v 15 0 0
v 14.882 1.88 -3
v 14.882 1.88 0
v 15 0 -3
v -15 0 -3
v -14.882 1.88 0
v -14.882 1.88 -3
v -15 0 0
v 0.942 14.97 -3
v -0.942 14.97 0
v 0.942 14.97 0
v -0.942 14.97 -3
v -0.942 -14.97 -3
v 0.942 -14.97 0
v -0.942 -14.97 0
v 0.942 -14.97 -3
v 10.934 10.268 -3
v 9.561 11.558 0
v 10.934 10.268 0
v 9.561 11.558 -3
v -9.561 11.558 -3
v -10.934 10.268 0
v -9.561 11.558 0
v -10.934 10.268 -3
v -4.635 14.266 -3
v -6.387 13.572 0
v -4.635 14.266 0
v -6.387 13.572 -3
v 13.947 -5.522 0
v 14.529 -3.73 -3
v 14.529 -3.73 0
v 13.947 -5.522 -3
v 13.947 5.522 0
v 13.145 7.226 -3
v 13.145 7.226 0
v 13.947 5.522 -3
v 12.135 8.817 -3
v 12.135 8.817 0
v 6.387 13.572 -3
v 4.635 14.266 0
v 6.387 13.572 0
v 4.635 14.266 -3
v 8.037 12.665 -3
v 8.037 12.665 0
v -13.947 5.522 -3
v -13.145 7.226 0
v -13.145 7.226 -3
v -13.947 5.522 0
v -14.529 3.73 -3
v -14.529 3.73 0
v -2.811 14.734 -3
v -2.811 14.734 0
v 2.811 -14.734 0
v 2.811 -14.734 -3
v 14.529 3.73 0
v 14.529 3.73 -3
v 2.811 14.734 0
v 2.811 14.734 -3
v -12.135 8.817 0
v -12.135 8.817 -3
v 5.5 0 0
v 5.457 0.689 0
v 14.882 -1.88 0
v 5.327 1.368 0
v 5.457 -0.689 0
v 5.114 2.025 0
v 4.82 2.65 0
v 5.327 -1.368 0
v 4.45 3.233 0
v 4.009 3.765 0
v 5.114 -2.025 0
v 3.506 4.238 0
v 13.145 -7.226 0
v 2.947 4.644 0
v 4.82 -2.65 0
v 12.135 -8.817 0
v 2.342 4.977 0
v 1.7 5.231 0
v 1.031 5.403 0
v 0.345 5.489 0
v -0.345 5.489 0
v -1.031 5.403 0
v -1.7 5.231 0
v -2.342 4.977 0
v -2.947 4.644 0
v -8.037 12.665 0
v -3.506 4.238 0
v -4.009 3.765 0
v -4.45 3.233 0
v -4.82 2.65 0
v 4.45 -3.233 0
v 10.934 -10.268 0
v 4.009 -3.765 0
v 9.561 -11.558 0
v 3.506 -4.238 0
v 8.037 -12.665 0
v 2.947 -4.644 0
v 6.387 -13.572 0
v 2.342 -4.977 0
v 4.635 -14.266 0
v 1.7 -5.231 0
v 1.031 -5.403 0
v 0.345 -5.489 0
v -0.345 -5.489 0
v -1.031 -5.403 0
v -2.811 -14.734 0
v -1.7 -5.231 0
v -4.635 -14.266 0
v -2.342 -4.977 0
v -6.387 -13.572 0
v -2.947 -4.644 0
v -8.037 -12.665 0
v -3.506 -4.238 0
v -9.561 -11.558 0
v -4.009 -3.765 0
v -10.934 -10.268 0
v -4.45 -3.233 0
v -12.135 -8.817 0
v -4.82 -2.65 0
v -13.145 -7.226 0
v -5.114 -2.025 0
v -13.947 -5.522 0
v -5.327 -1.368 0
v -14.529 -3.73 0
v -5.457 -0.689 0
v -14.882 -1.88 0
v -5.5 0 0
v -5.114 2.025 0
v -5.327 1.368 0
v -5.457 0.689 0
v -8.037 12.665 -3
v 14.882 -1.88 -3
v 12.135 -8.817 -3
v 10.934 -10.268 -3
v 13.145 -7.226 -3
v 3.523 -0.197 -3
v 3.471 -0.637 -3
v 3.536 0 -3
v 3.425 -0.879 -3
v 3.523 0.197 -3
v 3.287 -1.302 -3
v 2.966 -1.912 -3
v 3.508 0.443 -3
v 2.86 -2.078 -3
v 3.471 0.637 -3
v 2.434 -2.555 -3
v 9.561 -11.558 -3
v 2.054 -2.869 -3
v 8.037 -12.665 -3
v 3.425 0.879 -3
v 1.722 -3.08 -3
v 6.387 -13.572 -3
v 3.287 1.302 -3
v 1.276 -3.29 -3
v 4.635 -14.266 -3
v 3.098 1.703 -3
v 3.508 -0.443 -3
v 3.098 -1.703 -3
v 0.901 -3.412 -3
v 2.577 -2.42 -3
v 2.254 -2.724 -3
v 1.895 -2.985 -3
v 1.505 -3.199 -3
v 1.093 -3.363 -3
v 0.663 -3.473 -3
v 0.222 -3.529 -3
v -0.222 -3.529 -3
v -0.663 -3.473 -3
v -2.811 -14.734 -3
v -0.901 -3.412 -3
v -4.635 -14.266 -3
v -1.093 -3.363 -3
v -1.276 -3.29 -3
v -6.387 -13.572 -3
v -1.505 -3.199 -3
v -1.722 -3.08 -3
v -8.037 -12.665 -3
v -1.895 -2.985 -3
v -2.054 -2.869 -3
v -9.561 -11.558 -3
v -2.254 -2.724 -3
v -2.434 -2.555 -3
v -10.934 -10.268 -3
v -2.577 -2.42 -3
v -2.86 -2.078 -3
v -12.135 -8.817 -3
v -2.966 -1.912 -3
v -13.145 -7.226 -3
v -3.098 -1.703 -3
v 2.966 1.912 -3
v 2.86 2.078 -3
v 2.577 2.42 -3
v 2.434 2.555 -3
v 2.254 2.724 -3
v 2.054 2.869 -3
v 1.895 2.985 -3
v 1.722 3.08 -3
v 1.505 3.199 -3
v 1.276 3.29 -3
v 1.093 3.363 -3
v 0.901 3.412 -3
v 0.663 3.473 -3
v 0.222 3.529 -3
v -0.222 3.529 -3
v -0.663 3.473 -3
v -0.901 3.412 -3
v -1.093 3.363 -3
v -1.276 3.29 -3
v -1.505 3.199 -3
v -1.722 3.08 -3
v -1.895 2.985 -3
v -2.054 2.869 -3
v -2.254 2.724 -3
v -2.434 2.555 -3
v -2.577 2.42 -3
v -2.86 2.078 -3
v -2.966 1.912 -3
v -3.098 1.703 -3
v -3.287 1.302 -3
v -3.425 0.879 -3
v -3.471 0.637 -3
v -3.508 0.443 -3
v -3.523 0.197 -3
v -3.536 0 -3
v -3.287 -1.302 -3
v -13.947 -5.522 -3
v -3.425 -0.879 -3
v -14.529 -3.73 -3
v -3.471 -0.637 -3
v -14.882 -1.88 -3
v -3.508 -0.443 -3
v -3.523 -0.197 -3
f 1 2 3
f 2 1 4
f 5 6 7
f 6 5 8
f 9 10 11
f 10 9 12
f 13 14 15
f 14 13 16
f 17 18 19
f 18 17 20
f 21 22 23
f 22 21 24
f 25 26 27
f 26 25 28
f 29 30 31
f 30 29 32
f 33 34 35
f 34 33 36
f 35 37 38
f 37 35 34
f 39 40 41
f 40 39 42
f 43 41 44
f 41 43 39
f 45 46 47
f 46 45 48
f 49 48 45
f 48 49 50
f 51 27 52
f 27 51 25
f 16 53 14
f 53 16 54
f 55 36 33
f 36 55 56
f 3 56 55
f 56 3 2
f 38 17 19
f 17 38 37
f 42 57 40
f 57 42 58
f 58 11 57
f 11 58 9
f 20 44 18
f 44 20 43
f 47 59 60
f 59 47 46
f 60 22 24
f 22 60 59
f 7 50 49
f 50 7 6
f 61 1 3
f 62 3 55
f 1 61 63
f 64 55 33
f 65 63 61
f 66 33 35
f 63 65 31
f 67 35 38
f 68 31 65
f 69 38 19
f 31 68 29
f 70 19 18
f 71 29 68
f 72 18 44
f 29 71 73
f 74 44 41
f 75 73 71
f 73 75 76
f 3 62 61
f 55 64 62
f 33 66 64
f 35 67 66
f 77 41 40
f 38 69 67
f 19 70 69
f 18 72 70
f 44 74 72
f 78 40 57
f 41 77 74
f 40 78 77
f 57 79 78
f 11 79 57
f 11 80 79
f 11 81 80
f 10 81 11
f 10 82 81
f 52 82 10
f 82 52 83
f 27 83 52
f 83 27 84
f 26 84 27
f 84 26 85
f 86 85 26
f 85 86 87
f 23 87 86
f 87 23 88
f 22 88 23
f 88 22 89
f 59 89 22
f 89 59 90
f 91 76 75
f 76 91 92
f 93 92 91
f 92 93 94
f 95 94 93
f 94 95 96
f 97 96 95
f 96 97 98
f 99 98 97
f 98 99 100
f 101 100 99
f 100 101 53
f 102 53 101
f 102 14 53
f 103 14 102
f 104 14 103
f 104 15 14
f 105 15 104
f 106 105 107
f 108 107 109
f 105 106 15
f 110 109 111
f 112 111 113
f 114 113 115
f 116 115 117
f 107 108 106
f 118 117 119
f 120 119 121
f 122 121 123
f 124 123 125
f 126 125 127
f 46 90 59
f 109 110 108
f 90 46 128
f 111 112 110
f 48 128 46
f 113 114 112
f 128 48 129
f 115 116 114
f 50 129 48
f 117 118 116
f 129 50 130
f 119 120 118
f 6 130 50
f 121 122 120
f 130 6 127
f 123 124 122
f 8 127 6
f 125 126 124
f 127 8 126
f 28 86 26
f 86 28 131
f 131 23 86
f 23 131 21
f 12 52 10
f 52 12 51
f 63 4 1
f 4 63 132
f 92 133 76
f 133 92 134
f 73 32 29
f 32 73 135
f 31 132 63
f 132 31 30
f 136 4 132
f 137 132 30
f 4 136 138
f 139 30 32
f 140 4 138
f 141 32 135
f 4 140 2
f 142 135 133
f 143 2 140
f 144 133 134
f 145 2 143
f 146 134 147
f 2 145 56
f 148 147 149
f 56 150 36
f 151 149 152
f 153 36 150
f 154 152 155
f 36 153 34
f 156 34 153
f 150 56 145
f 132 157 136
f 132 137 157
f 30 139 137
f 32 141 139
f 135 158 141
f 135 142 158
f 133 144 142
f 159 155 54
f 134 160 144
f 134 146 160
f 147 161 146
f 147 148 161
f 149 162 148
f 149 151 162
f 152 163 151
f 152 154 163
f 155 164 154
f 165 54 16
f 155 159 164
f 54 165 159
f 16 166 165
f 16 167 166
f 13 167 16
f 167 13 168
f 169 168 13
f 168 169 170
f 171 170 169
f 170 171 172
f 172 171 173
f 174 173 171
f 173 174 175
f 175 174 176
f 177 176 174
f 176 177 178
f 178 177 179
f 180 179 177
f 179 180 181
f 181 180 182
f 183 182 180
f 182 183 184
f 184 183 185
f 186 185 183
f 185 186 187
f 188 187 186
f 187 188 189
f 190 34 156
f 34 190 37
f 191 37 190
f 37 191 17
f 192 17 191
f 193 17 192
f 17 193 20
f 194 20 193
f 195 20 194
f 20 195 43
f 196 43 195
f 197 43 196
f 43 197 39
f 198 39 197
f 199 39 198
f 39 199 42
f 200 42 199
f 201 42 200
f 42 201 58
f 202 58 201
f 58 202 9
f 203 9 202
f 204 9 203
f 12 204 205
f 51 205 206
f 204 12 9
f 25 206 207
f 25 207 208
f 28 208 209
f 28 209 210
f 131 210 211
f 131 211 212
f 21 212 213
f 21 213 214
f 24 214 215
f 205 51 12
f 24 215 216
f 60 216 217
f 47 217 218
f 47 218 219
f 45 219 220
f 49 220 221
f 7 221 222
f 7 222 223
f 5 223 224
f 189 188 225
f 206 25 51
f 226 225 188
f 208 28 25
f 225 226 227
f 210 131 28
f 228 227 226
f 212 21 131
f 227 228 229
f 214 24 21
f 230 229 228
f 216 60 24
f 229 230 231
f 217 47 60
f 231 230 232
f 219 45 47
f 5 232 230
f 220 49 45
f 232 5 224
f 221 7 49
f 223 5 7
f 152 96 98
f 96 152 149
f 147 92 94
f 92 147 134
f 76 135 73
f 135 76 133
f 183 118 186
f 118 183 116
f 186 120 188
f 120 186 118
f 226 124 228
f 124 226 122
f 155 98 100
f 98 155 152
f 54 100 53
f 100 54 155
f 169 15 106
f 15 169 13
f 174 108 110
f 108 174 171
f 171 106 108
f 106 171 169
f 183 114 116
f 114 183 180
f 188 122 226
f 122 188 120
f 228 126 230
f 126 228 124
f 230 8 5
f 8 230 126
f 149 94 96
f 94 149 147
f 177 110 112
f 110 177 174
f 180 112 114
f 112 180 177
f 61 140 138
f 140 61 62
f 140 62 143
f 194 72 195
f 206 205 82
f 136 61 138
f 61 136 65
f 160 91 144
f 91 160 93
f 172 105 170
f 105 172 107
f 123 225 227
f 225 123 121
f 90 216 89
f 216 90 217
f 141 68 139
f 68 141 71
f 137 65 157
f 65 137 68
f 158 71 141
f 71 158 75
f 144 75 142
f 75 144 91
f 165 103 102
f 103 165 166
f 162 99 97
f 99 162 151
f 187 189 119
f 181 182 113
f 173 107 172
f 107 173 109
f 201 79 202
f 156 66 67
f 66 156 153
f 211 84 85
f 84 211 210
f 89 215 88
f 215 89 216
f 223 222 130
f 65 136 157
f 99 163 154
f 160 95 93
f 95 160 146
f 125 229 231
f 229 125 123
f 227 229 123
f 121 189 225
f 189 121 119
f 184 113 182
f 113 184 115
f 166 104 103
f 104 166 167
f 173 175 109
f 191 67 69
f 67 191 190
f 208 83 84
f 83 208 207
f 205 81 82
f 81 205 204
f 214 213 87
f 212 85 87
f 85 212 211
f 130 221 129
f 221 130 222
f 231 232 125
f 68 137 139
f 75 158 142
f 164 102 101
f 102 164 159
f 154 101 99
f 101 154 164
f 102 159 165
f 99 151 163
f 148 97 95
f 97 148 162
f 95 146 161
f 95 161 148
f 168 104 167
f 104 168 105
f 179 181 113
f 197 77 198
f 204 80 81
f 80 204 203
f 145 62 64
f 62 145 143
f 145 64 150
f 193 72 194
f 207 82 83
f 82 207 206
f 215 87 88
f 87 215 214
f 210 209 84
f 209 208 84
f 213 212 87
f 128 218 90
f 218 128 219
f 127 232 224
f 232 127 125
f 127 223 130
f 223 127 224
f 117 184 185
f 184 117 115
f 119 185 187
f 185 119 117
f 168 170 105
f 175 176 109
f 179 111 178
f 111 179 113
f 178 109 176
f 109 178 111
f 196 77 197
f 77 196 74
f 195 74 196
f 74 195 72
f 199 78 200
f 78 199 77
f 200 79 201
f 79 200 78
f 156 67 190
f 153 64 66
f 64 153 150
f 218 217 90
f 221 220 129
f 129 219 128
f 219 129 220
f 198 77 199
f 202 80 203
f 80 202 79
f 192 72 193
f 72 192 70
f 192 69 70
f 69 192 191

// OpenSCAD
$fn = 50;


difference() {
	union() {
		translate(v = [0, 0, -3.0000000000]) {
			cylinder(h = 3, r = 15.0000000000);
		}
		translate(v = [0, 0, -3.0000000000]) {
			cylinder(h = 3, r = 2.8750000000);
		}
	}
	union() {
		translate(v = [0, 0, 0]) {
			rotate(a = [0, 0, 0]) {
				difference() {
					union() {
						translate(v = [0, 0, -3.0000000000]) {
							cylinder(h = 3, r = 2.2500000000);
						}
						translate(v = [0, 0, -4.2000000000]) {
							cylinder(h = 4.2000000000, r1 = 2.7500000000, r2 = 5.5000000000);
						}
						translate(v = [0, 0, -3.0000000000]) {
							cylinder(h = 3, r = 2.7500000000);
						}
						translate(v = [0, 0, -3.0000000000]) {
							cylinder(h = 3, r = 2.2500000000);
						}
					}
					union();
				}
			}
		}
	}
}
